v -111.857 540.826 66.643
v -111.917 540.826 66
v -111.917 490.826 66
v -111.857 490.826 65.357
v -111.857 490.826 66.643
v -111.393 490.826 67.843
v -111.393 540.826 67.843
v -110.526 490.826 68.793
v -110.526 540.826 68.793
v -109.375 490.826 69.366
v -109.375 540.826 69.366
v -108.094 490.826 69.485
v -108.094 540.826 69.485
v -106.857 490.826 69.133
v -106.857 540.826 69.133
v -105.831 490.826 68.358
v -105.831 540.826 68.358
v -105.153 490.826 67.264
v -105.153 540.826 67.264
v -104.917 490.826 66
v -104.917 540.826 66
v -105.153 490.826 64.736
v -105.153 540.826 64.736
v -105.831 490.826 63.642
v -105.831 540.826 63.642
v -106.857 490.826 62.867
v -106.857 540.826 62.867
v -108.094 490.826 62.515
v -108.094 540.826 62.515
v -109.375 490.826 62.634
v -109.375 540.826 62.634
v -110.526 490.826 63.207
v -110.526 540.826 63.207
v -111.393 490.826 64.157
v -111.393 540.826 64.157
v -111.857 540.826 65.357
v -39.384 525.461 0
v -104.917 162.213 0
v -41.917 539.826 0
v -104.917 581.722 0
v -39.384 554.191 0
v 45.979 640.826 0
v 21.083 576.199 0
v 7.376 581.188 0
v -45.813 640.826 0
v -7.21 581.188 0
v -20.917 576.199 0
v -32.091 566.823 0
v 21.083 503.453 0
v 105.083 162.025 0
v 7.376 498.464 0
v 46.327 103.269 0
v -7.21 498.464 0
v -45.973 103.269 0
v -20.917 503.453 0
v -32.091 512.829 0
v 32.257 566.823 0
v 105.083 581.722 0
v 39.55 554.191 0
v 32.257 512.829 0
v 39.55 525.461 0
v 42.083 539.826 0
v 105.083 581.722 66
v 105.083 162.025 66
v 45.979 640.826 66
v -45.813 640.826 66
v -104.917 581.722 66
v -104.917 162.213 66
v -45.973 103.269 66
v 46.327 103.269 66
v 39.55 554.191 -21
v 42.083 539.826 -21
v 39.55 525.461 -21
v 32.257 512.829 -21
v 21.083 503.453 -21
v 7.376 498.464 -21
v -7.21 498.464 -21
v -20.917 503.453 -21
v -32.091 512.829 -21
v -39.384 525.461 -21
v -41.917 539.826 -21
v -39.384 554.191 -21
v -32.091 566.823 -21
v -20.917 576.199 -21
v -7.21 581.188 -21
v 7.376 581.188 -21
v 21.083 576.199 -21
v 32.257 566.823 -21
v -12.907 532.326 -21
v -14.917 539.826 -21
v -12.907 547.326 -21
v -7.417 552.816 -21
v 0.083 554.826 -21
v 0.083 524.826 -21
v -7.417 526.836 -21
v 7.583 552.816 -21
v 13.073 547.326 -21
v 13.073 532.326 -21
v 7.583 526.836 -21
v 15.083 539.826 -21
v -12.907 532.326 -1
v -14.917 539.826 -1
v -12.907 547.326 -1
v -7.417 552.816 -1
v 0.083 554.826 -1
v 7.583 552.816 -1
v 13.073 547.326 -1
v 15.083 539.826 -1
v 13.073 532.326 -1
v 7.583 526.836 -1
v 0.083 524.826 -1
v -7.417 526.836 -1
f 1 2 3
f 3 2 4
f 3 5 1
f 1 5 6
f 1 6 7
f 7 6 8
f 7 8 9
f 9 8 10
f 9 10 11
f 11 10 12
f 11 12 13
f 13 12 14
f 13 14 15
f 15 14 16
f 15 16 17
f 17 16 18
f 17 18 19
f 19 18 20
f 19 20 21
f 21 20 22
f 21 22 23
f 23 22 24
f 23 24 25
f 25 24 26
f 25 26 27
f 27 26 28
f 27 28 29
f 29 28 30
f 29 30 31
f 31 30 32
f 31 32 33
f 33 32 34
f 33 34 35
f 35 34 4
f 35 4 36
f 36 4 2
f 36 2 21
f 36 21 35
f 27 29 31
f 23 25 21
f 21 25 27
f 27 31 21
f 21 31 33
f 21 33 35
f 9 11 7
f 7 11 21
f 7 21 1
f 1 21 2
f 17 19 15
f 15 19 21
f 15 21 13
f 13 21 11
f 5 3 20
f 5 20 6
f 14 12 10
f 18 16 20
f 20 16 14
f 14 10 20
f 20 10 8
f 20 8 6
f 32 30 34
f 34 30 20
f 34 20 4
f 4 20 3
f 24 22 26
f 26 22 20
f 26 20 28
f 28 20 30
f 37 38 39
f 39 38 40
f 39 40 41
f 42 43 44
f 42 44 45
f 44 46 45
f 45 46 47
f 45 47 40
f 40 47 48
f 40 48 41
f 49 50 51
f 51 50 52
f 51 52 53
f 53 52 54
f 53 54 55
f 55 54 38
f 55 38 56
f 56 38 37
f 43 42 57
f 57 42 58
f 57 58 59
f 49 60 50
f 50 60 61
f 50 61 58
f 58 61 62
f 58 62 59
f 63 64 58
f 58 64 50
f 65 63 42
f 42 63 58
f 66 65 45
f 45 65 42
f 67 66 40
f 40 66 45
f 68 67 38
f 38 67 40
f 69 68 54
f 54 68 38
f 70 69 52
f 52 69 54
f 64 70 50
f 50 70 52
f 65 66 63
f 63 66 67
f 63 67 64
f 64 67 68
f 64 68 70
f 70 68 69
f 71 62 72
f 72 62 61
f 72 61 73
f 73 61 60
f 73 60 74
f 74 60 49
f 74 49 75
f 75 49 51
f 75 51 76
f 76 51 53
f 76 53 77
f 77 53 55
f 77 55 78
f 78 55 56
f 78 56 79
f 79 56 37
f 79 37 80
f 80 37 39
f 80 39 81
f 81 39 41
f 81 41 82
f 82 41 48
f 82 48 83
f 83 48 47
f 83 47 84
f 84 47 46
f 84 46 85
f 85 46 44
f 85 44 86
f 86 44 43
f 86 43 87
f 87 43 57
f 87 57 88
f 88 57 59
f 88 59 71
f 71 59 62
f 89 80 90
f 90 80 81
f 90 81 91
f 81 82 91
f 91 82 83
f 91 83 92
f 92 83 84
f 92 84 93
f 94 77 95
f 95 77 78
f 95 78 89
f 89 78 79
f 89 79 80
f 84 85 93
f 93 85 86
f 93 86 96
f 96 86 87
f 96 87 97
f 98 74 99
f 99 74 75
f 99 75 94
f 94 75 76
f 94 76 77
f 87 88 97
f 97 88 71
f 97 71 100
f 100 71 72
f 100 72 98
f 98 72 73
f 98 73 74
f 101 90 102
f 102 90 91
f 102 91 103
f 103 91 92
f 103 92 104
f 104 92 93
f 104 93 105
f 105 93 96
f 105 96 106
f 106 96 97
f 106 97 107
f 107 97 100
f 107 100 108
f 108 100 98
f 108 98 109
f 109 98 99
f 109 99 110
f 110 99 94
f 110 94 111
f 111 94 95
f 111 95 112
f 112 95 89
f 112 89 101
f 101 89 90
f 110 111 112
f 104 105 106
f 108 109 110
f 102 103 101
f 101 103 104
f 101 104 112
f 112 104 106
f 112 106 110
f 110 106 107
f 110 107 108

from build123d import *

# Parameters (mm, degrees)
EXTRUDE_1_DEPTH     = 66
SKETCH1_R           = 3.5
BOSS_EXTRUDE1_DEPTH = 50
SKETCH2_R           = 42
BOSS_EXTRUDE2_DEPTH = 21
SKETCH3_R           = 15
CUT_EXTRUDE1_DEPTH  = 20


with BuildPart() as part:
    # Эскиз1 → Вытянуть1 (new body)
    with BuildSketch(Plane.XY):
        Polygon((105.082921559, 581.722068254), (45.979042749, 640.825947064), (-45.813199631, 640.825947064), (-104.917078441, 581.722068254), (-104.917078441, 162.212880509), (-45.97317451, 103.268976578), (46.326817337, 103.268976578), (105.082921559, 162.0250808), align=None)
    extrude(amount=EXTRUDE_1_DEPTH)

    # Sketch2 → Boss-Extrude2 (add)
    with BuildSketch(Plane(origin=(0, 0, 0), x_dir=(-1, 0, 0), z_dir=(0, 0, -1))):
        with Locations(Location((-0.082921559, 539.825947064, 0), (0, 0, 180))):
            Circle(SKETCH2_R)
    extrude(amount=BOSS_EXTRUDE2_DEPTH)

    # Sketch3 → Cut-Extrude1 (cut)
    with BuildSketch(Plane(origin=(0, 0, -21), x_dir=(-1, 0, 0), z_dir=(0, 0, -1))):
        with Locations((-0.082921559, 539.825947064)):
            Circle(SKETCH3_R)
    extrude(amount=-CUT_EXTRUDE1_DEPTH, mode=Mode.SUBTRACT)


with BuildPart() as body_2:
    # Sketch1 → Boss-Extrude1 (new body)
    with BuildSketch(Plane(origin=(0, 490.825947064, 0), x_dir=(1, 0, 0), z_dir=(0, 1, 0))):
        with Locations(Location((-108.417078441, -66, 0), (0, 0, 180))):
            Circle(SKETCH1_R)
    extrude(amount=BOSS_EXTRUDE1_DEPTH)


solid = Compound([part.part, body_2.part])
